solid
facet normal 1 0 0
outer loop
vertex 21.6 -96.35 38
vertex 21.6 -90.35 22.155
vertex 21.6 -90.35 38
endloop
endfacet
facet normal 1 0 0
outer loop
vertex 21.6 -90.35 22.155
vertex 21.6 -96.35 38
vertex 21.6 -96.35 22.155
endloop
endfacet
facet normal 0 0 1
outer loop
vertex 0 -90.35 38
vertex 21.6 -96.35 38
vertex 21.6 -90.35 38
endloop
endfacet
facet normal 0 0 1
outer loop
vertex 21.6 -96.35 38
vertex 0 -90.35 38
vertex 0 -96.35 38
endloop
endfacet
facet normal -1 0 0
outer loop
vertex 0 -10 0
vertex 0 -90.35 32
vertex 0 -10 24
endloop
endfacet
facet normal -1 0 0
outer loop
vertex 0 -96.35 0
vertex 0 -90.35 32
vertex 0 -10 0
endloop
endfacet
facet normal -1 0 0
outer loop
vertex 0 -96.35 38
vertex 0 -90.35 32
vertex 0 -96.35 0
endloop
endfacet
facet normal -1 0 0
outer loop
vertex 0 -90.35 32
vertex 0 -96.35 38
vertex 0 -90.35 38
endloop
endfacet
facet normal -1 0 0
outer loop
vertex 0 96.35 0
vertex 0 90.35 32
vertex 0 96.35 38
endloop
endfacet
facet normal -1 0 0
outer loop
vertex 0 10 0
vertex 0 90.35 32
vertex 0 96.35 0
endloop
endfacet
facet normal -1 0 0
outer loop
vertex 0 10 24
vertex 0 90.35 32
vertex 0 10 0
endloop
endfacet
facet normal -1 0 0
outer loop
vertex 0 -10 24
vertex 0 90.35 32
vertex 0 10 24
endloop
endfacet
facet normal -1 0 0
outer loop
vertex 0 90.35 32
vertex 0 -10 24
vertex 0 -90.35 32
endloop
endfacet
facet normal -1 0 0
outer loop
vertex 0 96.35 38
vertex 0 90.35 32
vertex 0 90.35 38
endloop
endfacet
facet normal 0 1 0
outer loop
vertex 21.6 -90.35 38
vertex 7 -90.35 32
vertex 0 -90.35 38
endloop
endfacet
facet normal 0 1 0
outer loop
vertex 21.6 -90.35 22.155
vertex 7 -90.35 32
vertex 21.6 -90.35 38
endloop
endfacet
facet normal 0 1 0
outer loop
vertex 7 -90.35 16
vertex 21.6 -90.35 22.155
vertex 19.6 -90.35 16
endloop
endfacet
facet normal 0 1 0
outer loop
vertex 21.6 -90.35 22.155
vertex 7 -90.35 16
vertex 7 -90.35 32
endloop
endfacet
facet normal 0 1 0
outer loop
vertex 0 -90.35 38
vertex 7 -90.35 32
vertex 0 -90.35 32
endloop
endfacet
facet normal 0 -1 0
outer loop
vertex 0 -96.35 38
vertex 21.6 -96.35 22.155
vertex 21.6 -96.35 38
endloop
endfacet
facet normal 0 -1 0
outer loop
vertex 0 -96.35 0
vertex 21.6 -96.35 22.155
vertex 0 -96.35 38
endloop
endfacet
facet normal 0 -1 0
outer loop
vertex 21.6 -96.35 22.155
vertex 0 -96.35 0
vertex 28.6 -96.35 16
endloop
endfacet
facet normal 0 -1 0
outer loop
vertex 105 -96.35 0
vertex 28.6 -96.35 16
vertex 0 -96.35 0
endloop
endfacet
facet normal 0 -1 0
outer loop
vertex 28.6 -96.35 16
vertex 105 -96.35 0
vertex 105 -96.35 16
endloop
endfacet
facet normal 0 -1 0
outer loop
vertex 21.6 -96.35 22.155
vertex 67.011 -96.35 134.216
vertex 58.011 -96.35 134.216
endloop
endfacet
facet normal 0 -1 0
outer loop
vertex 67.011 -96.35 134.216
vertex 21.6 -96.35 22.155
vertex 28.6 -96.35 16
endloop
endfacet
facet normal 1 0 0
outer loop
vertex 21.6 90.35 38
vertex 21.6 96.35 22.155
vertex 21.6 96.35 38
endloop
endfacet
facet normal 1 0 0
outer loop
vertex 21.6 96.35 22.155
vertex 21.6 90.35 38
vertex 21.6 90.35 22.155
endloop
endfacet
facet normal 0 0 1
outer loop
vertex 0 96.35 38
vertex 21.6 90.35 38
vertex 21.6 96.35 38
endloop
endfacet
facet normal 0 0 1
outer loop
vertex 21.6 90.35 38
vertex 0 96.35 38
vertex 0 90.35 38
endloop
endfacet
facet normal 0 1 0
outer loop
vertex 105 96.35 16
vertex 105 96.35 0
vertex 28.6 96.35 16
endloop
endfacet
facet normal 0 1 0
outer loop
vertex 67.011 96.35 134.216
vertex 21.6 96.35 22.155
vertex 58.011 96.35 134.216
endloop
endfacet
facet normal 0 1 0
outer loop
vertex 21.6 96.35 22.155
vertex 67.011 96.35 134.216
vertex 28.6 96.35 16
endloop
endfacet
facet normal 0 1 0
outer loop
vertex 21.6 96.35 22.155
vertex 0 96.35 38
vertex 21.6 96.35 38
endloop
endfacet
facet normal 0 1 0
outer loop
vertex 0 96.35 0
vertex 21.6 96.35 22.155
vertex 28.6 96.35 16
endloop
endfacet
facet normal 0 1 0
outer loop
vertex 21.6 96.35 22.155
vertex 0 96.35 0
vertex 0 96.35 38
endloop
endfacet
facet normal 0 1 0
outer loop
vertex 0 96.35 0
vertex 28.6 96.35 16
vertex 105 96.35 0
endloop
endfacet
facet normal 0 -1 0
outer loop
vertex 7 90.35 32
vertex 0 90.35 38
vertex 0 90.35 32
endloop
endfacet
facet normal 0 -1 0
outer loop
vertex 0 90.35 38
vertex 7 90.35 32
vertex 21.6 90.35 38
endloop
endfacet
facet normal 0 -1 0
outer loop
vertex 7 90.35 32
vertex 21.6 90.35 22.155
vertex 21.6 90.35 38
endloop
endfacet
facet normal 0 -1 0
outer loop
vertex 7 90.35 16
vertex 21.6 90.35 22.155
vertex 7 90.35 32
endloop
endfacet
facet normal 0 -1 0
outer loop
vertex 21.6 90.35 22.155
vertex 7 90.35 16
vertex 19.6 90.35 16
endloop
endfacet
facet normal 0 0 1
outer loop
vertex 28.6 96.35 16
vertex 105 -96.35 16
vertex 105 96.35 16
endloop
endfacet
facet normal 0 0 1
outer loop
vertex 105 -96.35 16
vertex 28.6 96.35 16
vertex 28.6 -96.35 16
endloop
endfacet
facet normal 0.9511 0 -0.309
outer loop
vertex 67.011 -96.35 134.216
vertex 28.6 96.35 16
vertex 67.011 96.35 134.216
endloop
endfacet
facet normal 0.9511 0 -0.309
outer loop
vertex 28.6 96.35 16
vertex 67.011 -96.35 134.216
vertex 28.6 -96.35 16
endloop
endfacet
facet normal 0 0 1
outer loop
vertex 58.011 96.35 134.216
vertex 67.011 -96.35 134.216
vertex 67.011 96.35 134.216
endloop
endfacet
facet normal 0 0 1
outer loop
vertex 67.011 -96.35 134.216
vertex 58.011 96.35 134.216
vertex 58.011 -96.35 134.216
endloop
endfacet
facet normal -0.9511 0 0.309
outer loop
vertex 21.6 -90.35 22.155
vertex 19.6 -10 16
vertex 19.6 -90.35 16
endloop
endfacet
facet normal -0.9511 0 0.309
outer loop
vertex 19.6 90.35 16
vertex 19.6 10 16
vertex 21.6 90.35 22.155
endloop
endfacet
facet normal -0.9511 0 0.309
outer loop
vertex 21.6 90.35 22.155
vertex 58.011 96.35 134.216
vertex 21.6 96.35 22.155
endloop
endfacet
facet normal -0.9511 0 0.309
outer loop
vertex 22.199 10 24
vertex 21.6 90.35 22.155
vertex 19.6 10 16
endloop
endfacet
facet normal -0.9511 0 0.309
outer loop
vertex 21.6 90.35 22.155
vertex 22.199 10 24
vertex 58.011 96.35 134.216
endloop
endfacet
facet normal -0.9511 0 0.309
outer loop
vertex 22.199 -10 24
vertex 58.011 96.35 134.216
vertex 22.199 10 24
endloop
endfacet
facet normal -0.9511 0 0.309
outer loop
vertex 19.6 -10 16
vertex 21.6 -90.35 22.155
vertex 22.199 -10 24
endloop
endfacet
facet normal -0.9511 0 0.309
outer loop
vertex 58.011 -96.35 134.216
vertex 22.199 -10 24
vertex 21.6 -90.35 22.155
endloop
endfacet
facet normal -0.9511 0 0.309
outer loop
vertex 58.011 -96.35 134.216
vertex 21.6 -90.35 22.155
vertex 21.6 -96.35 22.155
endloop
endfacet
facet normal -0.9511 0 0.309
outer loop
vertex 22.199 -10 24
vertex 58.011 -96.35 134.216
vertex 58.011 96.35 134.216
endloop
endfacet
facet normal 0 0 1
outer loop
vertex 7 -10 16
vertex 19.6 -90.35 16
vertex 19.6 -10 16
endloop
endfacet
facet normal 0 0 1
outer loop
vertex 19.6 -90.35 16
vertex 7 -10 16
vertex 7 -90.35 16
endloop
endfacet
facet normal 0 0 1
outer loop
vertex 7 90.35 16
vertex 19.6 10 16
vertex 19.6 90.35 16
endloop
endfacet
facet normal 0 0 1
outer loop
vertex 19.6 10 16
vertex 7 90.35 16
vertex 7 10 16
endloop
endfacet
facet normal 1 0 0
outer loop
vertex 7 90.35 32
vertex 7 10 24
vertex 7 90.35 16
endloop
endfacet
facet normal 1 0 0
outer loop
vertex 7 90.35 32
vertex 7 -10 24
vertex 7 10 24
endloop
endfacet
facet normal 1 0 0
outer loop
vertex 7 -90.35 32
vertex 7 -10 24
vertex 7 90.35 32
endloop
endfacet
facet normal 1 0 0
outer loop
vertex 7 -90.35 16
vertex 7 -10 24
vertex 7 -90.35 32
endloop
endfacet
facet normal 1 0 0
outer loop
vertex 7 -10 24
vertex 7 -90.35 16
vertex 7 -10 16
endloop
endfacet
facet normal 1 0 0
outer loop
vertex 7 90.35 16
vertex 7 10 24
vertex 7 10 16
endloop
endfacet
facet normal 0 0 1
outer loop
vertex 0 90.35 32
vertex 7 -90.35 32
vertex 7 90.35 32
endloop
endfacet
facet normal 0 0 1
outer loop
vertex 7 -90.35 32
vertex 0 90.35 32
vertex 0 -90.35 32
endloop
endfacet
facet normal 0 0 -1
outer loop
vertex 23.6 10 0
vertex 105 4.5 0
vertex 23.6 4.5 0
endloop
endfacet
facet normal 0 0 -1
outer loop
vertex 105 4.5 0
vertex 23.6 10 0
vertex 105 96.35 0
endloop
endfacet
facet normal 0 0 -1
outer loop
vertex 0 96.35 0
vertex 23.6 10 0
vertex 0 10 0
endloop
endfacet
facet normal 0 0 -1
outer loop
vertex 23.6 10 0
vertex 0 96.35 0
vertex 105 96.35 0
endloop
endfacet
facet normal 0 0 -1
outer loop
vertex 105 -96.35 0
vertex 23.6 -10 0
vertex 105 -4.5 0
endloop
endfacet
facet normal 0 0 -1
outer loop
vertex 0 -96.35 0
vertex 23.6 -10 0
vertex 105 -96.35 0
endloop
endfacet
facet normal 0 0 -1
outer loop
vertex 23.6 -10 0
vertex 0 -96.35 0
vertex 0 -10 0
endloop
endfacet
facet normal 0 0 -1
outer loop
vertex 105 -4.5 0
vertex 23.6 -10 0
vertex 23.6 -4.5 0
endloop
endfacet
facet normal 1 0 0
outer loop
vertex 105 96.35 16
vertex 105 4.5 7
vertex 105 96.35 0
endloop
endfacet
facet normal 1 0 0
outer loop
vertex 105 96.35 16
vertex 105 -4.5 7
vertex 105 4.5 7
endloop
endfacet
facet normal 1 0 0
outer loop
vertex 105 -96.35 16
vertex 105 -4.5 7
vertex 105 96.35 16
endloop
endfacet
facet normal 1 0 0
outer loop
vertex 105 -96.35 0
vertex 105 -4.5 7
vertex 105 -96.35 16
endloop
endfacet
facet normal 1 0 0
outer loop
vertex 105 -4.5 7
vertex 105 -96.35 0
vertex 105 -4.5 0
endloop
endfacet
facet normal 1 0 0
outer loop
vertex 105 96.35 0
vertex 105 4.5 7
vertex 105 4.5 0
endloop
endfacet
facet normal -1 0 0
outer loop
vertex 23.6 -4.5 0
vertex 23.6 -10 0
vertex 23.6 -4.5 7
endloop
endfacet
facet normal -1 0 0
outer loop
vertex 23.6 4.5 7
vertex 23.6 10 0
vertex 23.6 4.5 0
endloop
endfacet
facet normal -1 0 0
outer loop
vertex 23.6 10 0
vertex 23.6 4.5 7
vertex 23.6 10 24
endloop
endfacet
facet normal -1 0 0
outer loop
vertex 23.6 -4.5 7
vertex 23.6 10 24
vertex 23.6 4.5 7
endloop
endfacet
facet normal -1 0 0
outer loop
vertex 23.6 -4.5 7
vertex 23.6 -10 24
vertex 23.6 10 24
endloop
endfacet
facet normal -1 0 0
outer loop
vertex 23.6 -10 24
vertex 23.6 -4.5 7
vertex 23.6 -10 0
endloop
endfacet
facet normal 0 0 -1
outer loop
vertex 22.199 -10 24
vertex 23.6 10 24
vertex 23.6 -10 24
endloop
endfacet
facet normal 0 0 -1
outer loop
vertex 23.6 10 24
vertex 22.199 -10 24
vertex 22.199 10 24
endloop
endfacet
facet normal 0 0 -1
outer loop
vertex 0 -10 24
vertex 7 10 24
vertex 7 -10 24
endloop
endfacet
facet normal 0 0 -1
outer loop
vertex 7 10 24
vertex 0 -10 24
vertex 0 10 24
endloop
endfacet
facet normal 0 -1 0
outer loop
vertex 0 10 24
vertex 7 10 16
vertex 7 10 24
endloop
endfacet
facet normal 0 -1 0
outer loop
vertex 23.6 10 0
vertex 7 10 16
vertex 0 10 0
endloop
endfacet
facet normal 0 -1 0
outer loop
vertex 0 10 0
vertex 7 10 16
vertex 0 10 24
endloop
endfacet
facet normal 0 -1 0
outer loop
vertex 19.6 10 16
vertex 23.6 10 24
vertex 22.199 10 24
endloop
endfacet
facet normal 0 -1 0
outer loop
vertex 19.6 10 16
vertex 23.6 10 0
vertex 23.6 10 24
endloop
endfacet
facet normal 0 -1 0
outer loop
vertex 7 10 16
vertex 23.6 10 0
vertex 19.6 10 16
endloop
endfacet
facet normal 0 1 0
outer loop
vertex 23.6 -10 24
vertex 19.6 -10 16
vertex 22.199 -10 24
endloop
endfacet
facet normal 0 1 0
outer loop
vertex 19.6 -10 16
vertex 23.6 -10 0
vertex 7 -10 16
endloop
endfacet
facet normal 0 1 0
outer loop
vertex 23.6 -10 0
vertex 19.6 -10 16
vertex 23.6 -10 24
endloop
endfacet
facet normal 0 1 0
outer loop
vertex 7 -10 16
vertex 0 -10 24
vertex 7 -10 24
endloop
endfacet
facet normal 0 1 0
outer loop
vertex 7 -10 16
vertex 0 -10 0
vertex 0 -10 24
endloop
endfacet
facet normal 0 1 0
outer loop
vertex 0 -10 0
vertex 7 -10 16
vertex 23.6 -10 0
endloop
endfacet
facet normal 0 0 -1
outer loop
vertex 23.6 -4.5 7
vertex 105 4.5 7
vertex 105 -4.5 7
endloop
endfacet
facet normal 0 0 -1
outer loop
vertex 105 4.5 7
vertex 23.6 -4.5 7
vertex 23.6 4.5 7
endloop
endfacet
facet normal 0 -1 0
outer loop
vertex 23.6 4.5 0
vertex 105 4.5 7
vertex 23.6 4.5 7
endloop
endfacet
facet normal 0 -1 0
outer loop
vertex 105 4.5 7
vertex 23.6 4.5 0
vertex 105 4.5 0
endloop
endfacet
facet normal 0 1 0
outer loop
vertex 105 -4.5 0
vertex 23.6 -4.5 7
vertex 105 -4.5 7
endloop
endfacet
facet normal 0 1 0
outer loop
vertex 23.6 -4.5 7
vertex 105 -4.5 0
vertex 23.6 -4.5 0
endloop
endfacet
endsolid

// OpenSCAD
// ============================================================
//  iPad-holder til butik  -  parametrisk OpenSCAD-model
//  Enhed:    Apple iPad 11 (A16, 2025)   248.6 x 179.5 x 7.2 mm
//  Printer:  Prusa MK4S  (bed 250 x 210 x 220 mm)
//  Stil:     laenende bordstander med kabel-udsparing (a la Durable)
//
//  Maal i millimeter.  Aendr tallene nedenfor, F5 = preview, F6 = render,
//  F7 = eksporter STL  ->  slices i PrusaSlicer.
//
//  KOORDINATER:  X = dybde (0 = forkant),  Y = bredde,  Z = hoejde
// ============================================================

/* [Orientering] */
orientation = "portrait";   // "portrait" (USB-C i bunden) eller "landscape"

/* [Enhedens maal - iPad 11 A16] */
device_long  = 248.6;
device_short = 179.5;
device_native_thickness = 7.2;   // bar iPad (kun til reference)

/* [Cover / pasform] */
// Tykkelsen slidsen laves til = iPad + evt. cover + slip:
//   bar iPad ~9,  tyndt cover ~12 (DEFAULT),  robust cover ~18
slot_thickness = 12;

/* [Vinkel & stoette] */
lean_angle   = 18;    // grader fra LODRET (mindre = mere oprejst). 12-25 typisk.
support_frac = 0.50;  // hvor stor del af iPad-hoejden ryglaenet daekker (0.3-0.6)
lip_height   = 16;    // hvor hoejt frontkanten griber om iPad'ens underkant (daekker kun rammen)
lip_thick    = 7;     // godstykkelse i frontlaeben
side_grip    = 10;    // hoejde paa sidetapper der fastholder hjoernerne (0 = ingen)

/* [Fundament] */
base_depth   = 105;   // dybde af fundament (stoerre = mere stabilt mod vip)
base_height  = 16;    // tykkelse af bundplade (rummer kabelkanal)
wall_thick   = 9;     // godstykkelse i ryglaenet
extra_width  = 12;    // ekstra bredde ud over iPad (2 x sidetap). default 2x6

/* [Kabel - USB-C i bunden (portrait)] */
plug_w       = 20;    // bredde af aabning ved ladestikket
cable_groove_w = 9;   // bredde af kabelrille bagud i bunden
cable_groove_h = 7;   // hoejde af kabelrille (rille er aaben i bunden -> ingen bro)

/* [Montering] */
screw_holes  = false; // true = 4 huller til at skrue holderen fast til disken
screw_d      = 4.5;
screw_head_d = 9;

/* [Visning] */
show_device = false;  // true = tegn en "spoegelses-iPad" i holderen (kun til preview)

/* [Finhed] */
$fn = 72;

// ------------------------------------------------------------
//  AFLEDTE VAERDIER
// ------------------------------------------------------------
clear   = 0.6;                                  // slip pr. side
ipad_w  = (orientation == "portrait") ? device_short : device_long;  // langs Y
ipad_h  = (orientation == "portrait") ? device_long  : device_short; // langs laenet
cradle_w  = ipad_w + 2*clear + extra_width;     // holderens bredde (Y)
support_h = ipad_h * support_frac;              // ryglaenets laengde
a  = lean_angle;
zr = base_height;                               // iPad'ens underkant hviler her
bx = lip_thick + clear + slot_thickness;        // bagkant af slids ved bunden

echo(str(">> Holder  B x D x H ca. = ", cradle_w, " x ", base_depth, " x ",
         zr + support_h*cos(a) + wall_thick*sin(a), " mm"));

// ------------------------------------------------------------
//  2D SIDEPROFIL (X-Z), ekstruderes paa tvaers (Y)
// ------------------------------------------------------------
module profile() {
    // fundament
    square([base_depth, base_height]);
    // frontlaebe (gaar helt ned i fundamentet -> overlap, undgaar ikke-manifold)
    square([lip_thick, zr + lip_height]);
    // laenende ryglaen: laen-linjen gaar gennem B=(bx,zr); forlaenges ned til z=0
    // saa den overlapper fundamentet uden coincidente flader.
    Lbot = -zr / cos(a);                                  // parameter ned til z=0
    fb = [bx + Lbot*sin(a), 0];                           // front-bund (forlaenget)
    ft = [bx + support_h*sin(a), zr + support_h*cos(a)];  // front-top
    polygon([
        fb,
        ft,
        [ft[0] + wall_thick, ft[1]],                      // bag-top
        [fb[0] + wall_thick, 0]                           // bag-bund
    ]);
}

module body() {
    rotate([90, 0, 0])
        translate([0, 0, -cradle_w/2])
            linear_extrude(height = cradle_w)
                profile();
}

// sidetapper der holder de nederste hjoerner paa plads
module side_tabs() {
    tab_w = cradle_w/2 - (ipad_w/2 + clear);               // = extra_width/2
    if (side_grip > 0)
        for (s = [-1, 1]) {
            y0 = (s == 1) ? (ipad_w/2 + clear) : -cradle_w/2;
            translate([0, y0, zr - 4])                     // -4 = overlap ned i fundament
                cube([bx + 2, tab_w, side_grip + slot_thickness + 4]);
        }
}

// kabel: aaben slids ved stikket + rille bagud i bunden
module cable_cut() {
    // aabning ved USB-C stikket (gennem laebe + hylde, op forbi underkanten)
    translate([-1, -plug_w/2, -1])
        cube([bx + 4 + 1, plug_w, zr + 8 + 1]);
    // rille bagud i bunden (aaben nedad -> ingen bro noedvendig ved print)
    translate([lip_thick, -cable_groove_w/2, -1])
        cube([base_depth - lip_thick + 1, cable_groove_w, cable_groove_h + 1]);
}

module screw_cuts() {
    if (screw_holes) {
        inset = 16;
        ys = cradle_w/2 - inset;
        for (sx = [inset, base_depth - inset], sy = [-ys, ys]) {
            translate([sx, sy, -1]) cylinder(d = screw_d, h = base_height + 2);
            translate([sx, sy, base_height - 4]) cylinder(d = screw_head_d, h = 5);
        }
    }
}

// ------------------------------------------------------------
//  SAMLET MODEL
// ------------------------------------------------------------
module ipad_holder() {
    difference() {
        union() {
            body();
            side_tabs();
        }
        cable_cut();
        screw_cuts();
    }
}

// "spoegelses-iPad" til at verificere pasform i preview
module ghost_device() {
    // bag-underkanten sidder ved B=(bx,zr) og laener samme vej som ryglaenet;
    // tykkelsen gaar mod skaermsiden (-X), saa bagfladen ligger paa laenet.
    color([0.2, 0.4, 0.9, 0.45])
        translate([bx, -ipad_w/2, zr])
            rotate([0, a, 0])
                translate([-device_native_thickness, 0, 0])
                    cube([device_native_thickness, ipad_w, ipad_h]);
}

ipad_holder();
if (show_device) ghost_device();
